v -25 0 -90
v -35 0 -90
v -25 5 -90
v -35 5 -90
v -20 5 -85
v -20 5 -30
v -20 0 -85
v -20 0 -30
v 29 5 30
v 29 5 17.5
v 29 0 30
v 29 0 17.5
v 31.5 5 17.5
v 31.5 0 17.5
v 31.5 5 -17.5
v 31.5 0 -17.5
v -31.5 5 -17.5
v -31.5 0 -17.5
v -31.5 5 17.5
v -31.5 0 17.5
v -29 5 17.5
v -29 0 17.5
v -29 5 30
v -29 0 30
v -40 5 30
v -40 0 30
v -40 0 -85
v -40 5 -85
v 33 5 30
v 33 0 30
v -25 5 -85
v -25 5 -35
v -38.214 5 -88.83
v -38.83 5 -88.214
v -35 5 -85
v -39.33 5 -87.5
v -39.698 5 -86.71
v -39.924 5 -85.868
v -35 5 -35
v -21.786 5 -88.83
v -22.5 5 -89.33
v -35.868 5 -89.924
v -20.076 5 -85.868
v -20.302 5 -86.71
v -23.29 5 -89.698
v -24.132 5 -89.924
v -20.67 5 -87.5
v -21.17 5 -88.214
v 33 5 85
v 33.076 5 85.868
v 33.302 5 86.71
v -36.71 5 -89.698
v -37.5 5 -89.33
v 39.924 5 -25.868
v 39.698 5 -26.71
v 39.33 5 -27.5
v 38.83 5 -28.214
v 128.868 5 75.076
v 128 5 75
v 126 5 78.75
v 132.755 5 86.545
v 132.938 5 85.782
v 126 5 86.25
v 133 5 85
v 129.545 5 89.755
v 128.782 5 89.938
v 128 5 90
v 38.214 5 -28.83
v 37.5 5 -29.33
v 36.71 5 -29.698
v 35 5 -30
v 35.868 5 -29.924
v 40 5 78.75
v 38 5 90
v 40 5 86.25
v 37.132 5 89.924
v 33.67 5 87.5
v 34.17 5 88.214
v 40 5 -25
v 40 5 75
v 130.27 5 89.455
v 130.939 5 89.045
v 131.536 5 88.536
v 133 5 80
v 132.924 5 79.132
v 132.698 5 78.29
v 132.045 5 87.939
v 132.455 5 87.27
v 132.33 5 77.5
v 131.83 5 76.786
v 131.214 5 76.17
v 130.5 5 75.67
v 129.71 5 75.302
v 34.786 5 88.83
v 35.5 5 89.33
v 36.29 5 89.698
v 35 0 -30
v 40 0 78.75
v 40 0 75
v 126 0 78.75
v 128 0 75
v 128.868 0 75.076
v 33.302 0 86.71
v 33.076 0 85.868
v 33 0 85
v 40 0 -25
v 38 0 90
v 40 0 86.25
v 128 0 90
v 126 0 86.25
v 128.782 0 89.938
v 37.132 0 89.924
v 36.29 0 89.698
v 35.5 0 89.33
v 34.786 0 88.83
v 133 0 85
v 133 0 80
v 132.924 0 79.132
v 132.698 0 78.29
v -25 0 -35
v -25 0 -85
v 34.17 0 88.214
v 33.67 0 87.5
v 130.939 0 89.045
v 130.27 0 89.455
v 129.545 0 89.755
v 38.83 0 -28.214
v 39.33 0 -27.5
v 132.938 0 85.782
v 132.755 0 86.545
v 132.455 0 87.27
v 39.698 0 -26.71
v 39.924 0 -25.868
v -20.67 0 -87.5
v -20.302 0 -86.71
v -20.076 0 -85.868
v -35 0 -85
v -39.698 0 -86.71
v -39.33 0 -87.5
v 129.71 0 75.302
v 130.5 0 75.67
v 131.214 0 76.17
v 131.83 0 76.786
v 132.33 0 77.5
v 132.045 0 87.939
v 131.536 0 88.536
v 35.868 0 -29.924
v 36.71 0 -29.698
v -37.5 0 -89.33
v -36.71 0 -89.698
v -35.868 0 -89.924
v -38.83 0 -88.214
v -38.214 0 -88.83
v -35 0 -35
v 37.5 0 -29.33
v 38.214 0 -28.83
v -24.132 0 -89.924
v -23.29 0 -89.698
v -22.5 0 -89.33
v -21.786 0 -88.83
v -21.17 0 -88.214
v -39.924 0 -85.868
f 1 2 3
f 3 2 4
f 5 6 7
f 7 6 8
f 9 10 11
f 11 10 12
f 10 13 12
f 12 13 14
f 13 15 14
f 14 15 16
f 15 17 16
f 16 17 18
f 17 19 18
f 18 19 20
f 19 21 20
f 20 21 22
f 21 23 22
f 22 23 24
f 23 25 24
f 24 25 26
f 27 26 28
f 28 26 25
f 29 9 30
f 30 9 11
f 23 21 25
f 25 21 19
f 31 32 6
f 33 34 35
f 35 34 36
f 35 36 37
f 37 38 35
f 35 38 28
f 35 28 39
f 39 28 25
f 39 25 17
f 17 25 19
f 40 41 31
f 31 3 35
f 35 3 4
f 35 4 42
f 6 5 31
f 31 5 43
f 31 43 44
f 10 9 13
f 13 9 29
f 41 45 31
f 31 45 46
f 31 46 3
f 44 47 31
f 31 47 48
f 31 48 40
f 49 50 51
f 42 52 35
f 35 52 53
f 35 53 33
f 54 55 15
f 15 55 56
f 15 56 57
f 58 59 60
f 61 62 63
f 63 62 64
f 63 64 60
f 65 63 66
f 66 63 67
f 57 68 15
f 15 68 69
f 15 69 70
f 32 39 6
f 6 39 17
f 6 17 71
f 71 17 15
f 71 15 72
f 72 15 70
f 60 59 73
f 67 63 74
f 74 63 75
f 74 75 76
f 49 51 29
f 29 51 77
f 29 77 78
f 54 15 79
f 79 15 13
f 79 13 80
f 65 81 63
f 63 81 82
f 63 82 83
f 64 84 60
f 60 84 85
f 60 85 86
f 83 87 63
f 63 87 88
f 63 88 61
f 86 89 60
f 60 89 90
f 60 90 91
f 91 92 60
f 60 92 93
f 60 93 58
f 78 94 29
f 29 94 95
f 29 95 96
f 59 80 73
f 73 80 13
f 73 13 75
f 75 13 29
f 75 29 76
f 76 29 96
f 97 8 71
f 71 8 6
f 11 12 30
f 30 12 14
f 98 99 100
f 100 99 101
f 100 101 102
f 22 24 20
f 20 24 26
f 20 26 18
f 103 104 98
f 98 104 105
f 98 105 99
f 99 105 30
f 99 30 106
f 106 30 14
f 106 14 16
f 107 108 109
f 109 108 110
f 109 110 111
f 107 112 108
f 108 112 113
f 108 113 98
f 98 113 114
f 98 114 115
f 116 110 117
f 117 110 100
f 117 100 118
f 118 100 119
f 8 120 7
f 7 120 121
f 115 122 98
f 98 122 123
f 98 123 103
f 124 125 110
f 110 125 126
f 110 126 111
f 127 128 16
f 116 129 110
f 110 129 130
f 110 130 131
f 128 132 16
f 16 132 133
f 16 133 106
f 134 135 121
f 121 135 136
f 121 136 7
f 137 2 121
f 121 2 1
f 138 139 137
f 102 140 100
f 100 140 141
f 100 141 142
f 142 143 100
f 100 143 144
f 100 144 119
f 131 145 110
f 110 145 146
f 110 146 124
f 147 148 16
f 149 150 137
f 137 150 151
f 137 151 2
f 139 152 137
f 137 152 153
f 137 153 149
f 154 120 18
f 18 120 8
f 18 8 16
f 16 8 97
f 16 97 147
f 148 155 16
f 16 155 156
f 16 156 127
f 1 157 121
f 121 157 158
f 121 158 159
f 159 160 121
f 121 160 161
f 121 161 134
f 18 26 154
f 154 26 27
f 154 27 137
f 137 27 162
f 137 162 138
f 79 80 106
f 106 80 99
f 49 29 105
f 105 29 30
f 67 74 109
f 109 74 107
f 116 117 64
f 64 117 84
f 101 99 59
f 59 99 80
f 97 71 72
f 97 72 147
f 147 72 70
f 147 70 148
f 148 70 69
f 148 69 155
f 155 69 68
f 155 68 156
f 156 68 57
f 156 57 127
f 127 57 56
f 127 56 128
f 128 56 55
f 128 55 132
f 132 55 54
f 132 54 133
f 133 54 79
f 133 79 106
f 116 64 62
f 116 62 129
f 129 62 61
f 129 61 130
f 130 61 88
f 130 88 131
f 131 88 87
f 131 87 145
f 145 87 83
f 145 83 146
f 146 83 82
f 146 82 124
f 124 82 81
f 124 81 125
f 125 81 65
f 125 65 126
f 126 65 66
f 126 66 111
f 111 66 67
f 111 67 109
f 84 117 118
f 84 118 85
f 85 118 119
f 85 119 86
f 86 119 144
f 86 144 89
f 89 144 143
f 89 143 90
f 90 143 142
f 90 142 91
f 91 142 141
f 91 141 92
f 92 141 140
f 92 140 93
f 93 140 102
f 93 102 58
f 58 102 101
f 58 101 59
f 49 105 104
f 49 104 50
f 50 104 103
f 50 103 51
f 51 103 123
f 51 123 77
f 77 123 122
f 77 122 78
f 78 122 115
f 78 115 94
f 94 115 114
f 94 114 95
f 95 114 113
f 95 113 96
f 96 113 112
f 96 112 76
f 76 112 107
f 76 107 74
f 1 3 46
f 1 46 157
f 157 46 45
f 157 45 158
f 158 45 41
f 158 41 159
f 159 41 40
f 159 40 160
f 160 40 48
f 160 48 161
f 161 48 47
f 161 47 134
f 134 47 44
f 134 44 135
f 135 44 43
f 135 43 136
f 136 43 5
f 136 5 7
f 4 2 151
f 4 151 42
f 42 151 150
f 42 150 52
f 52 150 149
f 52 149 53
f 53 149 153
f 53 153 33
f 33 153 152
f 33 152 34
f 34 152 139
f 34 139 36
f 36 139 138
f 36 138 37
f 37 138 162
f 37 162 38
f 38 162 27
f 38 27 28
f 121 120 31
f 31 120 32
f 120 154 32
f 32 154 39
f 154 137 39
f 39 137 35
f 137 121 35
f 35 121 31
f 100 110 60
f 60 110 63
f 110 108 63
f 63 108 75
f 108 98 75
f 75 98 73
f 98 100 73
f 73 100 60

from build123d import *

# Parameters (mm, degrees)
BOSS_EXTRUDE1_DEPTH = 5
FILLET2_R           = 5
SKETCH2_W           = 86
SKETCH2_H           = 7.5
SKETCH2_W_2         = 10
SKETCH2_H_2         = 50
CUT_EXTRUDE1_DEPTH  = 161.667358228


with BuildPart() as part:
    # Sketch1 → Boss-Extrude1 (new body)
    with BuildSketch(Plane(origin=(0, 0, 0), x_dir=(1, 0, 0), z_dir=(0, 1, 0))):
        Polygon((-29, -17.5), (-31.5, -17.5), (-31.5, 17.5), (31.5, 17.5), (31.5, -17.5), (29, -17.5), (29, -30), (33, -30), (33, -90), (133, -90), (133, -75), (40, -75), (40, 30), (-20, 30), (-20, 90), (-40, 90), (-40, -30), (-29, -30), align=None)
    extrude(amount=BOSS_EXTRUDE1_DEPTH)

    # Fillet2
    fillet2_edges = [part.edges().sort_by_distance(p)[0] for p in [
        (-40, 2.5, -90),
        (-20, 2.5, -90),
        (40, 2.5, -30),
        (33, 2.5, 90),
        (133, 2.5, 90),
        (133, 2.5, 75),
    ]]
    fillet(fillet2_edges, radius=FILLET2_R)

    # Sketch2 → Cut-Extrude1 (cut, through all)
    with BuildSketch(Plane(origin=(0, 5, 0), x_dir=(1, 0, 0), z_dir=(0, 1, 0))):
        with Locations((83, -82.5)):
            Rectangle(SKETCH2_W, SKETCH2_H)
        with Locations((-30, 60)):
            Rectangle(SKETCH2_W_2, SKETCH2_H_2)
    extrude(amount=-CUT_EXTRUDE1_DEPTH, mode=Mode.SUBTRACT)


solid = part.part
